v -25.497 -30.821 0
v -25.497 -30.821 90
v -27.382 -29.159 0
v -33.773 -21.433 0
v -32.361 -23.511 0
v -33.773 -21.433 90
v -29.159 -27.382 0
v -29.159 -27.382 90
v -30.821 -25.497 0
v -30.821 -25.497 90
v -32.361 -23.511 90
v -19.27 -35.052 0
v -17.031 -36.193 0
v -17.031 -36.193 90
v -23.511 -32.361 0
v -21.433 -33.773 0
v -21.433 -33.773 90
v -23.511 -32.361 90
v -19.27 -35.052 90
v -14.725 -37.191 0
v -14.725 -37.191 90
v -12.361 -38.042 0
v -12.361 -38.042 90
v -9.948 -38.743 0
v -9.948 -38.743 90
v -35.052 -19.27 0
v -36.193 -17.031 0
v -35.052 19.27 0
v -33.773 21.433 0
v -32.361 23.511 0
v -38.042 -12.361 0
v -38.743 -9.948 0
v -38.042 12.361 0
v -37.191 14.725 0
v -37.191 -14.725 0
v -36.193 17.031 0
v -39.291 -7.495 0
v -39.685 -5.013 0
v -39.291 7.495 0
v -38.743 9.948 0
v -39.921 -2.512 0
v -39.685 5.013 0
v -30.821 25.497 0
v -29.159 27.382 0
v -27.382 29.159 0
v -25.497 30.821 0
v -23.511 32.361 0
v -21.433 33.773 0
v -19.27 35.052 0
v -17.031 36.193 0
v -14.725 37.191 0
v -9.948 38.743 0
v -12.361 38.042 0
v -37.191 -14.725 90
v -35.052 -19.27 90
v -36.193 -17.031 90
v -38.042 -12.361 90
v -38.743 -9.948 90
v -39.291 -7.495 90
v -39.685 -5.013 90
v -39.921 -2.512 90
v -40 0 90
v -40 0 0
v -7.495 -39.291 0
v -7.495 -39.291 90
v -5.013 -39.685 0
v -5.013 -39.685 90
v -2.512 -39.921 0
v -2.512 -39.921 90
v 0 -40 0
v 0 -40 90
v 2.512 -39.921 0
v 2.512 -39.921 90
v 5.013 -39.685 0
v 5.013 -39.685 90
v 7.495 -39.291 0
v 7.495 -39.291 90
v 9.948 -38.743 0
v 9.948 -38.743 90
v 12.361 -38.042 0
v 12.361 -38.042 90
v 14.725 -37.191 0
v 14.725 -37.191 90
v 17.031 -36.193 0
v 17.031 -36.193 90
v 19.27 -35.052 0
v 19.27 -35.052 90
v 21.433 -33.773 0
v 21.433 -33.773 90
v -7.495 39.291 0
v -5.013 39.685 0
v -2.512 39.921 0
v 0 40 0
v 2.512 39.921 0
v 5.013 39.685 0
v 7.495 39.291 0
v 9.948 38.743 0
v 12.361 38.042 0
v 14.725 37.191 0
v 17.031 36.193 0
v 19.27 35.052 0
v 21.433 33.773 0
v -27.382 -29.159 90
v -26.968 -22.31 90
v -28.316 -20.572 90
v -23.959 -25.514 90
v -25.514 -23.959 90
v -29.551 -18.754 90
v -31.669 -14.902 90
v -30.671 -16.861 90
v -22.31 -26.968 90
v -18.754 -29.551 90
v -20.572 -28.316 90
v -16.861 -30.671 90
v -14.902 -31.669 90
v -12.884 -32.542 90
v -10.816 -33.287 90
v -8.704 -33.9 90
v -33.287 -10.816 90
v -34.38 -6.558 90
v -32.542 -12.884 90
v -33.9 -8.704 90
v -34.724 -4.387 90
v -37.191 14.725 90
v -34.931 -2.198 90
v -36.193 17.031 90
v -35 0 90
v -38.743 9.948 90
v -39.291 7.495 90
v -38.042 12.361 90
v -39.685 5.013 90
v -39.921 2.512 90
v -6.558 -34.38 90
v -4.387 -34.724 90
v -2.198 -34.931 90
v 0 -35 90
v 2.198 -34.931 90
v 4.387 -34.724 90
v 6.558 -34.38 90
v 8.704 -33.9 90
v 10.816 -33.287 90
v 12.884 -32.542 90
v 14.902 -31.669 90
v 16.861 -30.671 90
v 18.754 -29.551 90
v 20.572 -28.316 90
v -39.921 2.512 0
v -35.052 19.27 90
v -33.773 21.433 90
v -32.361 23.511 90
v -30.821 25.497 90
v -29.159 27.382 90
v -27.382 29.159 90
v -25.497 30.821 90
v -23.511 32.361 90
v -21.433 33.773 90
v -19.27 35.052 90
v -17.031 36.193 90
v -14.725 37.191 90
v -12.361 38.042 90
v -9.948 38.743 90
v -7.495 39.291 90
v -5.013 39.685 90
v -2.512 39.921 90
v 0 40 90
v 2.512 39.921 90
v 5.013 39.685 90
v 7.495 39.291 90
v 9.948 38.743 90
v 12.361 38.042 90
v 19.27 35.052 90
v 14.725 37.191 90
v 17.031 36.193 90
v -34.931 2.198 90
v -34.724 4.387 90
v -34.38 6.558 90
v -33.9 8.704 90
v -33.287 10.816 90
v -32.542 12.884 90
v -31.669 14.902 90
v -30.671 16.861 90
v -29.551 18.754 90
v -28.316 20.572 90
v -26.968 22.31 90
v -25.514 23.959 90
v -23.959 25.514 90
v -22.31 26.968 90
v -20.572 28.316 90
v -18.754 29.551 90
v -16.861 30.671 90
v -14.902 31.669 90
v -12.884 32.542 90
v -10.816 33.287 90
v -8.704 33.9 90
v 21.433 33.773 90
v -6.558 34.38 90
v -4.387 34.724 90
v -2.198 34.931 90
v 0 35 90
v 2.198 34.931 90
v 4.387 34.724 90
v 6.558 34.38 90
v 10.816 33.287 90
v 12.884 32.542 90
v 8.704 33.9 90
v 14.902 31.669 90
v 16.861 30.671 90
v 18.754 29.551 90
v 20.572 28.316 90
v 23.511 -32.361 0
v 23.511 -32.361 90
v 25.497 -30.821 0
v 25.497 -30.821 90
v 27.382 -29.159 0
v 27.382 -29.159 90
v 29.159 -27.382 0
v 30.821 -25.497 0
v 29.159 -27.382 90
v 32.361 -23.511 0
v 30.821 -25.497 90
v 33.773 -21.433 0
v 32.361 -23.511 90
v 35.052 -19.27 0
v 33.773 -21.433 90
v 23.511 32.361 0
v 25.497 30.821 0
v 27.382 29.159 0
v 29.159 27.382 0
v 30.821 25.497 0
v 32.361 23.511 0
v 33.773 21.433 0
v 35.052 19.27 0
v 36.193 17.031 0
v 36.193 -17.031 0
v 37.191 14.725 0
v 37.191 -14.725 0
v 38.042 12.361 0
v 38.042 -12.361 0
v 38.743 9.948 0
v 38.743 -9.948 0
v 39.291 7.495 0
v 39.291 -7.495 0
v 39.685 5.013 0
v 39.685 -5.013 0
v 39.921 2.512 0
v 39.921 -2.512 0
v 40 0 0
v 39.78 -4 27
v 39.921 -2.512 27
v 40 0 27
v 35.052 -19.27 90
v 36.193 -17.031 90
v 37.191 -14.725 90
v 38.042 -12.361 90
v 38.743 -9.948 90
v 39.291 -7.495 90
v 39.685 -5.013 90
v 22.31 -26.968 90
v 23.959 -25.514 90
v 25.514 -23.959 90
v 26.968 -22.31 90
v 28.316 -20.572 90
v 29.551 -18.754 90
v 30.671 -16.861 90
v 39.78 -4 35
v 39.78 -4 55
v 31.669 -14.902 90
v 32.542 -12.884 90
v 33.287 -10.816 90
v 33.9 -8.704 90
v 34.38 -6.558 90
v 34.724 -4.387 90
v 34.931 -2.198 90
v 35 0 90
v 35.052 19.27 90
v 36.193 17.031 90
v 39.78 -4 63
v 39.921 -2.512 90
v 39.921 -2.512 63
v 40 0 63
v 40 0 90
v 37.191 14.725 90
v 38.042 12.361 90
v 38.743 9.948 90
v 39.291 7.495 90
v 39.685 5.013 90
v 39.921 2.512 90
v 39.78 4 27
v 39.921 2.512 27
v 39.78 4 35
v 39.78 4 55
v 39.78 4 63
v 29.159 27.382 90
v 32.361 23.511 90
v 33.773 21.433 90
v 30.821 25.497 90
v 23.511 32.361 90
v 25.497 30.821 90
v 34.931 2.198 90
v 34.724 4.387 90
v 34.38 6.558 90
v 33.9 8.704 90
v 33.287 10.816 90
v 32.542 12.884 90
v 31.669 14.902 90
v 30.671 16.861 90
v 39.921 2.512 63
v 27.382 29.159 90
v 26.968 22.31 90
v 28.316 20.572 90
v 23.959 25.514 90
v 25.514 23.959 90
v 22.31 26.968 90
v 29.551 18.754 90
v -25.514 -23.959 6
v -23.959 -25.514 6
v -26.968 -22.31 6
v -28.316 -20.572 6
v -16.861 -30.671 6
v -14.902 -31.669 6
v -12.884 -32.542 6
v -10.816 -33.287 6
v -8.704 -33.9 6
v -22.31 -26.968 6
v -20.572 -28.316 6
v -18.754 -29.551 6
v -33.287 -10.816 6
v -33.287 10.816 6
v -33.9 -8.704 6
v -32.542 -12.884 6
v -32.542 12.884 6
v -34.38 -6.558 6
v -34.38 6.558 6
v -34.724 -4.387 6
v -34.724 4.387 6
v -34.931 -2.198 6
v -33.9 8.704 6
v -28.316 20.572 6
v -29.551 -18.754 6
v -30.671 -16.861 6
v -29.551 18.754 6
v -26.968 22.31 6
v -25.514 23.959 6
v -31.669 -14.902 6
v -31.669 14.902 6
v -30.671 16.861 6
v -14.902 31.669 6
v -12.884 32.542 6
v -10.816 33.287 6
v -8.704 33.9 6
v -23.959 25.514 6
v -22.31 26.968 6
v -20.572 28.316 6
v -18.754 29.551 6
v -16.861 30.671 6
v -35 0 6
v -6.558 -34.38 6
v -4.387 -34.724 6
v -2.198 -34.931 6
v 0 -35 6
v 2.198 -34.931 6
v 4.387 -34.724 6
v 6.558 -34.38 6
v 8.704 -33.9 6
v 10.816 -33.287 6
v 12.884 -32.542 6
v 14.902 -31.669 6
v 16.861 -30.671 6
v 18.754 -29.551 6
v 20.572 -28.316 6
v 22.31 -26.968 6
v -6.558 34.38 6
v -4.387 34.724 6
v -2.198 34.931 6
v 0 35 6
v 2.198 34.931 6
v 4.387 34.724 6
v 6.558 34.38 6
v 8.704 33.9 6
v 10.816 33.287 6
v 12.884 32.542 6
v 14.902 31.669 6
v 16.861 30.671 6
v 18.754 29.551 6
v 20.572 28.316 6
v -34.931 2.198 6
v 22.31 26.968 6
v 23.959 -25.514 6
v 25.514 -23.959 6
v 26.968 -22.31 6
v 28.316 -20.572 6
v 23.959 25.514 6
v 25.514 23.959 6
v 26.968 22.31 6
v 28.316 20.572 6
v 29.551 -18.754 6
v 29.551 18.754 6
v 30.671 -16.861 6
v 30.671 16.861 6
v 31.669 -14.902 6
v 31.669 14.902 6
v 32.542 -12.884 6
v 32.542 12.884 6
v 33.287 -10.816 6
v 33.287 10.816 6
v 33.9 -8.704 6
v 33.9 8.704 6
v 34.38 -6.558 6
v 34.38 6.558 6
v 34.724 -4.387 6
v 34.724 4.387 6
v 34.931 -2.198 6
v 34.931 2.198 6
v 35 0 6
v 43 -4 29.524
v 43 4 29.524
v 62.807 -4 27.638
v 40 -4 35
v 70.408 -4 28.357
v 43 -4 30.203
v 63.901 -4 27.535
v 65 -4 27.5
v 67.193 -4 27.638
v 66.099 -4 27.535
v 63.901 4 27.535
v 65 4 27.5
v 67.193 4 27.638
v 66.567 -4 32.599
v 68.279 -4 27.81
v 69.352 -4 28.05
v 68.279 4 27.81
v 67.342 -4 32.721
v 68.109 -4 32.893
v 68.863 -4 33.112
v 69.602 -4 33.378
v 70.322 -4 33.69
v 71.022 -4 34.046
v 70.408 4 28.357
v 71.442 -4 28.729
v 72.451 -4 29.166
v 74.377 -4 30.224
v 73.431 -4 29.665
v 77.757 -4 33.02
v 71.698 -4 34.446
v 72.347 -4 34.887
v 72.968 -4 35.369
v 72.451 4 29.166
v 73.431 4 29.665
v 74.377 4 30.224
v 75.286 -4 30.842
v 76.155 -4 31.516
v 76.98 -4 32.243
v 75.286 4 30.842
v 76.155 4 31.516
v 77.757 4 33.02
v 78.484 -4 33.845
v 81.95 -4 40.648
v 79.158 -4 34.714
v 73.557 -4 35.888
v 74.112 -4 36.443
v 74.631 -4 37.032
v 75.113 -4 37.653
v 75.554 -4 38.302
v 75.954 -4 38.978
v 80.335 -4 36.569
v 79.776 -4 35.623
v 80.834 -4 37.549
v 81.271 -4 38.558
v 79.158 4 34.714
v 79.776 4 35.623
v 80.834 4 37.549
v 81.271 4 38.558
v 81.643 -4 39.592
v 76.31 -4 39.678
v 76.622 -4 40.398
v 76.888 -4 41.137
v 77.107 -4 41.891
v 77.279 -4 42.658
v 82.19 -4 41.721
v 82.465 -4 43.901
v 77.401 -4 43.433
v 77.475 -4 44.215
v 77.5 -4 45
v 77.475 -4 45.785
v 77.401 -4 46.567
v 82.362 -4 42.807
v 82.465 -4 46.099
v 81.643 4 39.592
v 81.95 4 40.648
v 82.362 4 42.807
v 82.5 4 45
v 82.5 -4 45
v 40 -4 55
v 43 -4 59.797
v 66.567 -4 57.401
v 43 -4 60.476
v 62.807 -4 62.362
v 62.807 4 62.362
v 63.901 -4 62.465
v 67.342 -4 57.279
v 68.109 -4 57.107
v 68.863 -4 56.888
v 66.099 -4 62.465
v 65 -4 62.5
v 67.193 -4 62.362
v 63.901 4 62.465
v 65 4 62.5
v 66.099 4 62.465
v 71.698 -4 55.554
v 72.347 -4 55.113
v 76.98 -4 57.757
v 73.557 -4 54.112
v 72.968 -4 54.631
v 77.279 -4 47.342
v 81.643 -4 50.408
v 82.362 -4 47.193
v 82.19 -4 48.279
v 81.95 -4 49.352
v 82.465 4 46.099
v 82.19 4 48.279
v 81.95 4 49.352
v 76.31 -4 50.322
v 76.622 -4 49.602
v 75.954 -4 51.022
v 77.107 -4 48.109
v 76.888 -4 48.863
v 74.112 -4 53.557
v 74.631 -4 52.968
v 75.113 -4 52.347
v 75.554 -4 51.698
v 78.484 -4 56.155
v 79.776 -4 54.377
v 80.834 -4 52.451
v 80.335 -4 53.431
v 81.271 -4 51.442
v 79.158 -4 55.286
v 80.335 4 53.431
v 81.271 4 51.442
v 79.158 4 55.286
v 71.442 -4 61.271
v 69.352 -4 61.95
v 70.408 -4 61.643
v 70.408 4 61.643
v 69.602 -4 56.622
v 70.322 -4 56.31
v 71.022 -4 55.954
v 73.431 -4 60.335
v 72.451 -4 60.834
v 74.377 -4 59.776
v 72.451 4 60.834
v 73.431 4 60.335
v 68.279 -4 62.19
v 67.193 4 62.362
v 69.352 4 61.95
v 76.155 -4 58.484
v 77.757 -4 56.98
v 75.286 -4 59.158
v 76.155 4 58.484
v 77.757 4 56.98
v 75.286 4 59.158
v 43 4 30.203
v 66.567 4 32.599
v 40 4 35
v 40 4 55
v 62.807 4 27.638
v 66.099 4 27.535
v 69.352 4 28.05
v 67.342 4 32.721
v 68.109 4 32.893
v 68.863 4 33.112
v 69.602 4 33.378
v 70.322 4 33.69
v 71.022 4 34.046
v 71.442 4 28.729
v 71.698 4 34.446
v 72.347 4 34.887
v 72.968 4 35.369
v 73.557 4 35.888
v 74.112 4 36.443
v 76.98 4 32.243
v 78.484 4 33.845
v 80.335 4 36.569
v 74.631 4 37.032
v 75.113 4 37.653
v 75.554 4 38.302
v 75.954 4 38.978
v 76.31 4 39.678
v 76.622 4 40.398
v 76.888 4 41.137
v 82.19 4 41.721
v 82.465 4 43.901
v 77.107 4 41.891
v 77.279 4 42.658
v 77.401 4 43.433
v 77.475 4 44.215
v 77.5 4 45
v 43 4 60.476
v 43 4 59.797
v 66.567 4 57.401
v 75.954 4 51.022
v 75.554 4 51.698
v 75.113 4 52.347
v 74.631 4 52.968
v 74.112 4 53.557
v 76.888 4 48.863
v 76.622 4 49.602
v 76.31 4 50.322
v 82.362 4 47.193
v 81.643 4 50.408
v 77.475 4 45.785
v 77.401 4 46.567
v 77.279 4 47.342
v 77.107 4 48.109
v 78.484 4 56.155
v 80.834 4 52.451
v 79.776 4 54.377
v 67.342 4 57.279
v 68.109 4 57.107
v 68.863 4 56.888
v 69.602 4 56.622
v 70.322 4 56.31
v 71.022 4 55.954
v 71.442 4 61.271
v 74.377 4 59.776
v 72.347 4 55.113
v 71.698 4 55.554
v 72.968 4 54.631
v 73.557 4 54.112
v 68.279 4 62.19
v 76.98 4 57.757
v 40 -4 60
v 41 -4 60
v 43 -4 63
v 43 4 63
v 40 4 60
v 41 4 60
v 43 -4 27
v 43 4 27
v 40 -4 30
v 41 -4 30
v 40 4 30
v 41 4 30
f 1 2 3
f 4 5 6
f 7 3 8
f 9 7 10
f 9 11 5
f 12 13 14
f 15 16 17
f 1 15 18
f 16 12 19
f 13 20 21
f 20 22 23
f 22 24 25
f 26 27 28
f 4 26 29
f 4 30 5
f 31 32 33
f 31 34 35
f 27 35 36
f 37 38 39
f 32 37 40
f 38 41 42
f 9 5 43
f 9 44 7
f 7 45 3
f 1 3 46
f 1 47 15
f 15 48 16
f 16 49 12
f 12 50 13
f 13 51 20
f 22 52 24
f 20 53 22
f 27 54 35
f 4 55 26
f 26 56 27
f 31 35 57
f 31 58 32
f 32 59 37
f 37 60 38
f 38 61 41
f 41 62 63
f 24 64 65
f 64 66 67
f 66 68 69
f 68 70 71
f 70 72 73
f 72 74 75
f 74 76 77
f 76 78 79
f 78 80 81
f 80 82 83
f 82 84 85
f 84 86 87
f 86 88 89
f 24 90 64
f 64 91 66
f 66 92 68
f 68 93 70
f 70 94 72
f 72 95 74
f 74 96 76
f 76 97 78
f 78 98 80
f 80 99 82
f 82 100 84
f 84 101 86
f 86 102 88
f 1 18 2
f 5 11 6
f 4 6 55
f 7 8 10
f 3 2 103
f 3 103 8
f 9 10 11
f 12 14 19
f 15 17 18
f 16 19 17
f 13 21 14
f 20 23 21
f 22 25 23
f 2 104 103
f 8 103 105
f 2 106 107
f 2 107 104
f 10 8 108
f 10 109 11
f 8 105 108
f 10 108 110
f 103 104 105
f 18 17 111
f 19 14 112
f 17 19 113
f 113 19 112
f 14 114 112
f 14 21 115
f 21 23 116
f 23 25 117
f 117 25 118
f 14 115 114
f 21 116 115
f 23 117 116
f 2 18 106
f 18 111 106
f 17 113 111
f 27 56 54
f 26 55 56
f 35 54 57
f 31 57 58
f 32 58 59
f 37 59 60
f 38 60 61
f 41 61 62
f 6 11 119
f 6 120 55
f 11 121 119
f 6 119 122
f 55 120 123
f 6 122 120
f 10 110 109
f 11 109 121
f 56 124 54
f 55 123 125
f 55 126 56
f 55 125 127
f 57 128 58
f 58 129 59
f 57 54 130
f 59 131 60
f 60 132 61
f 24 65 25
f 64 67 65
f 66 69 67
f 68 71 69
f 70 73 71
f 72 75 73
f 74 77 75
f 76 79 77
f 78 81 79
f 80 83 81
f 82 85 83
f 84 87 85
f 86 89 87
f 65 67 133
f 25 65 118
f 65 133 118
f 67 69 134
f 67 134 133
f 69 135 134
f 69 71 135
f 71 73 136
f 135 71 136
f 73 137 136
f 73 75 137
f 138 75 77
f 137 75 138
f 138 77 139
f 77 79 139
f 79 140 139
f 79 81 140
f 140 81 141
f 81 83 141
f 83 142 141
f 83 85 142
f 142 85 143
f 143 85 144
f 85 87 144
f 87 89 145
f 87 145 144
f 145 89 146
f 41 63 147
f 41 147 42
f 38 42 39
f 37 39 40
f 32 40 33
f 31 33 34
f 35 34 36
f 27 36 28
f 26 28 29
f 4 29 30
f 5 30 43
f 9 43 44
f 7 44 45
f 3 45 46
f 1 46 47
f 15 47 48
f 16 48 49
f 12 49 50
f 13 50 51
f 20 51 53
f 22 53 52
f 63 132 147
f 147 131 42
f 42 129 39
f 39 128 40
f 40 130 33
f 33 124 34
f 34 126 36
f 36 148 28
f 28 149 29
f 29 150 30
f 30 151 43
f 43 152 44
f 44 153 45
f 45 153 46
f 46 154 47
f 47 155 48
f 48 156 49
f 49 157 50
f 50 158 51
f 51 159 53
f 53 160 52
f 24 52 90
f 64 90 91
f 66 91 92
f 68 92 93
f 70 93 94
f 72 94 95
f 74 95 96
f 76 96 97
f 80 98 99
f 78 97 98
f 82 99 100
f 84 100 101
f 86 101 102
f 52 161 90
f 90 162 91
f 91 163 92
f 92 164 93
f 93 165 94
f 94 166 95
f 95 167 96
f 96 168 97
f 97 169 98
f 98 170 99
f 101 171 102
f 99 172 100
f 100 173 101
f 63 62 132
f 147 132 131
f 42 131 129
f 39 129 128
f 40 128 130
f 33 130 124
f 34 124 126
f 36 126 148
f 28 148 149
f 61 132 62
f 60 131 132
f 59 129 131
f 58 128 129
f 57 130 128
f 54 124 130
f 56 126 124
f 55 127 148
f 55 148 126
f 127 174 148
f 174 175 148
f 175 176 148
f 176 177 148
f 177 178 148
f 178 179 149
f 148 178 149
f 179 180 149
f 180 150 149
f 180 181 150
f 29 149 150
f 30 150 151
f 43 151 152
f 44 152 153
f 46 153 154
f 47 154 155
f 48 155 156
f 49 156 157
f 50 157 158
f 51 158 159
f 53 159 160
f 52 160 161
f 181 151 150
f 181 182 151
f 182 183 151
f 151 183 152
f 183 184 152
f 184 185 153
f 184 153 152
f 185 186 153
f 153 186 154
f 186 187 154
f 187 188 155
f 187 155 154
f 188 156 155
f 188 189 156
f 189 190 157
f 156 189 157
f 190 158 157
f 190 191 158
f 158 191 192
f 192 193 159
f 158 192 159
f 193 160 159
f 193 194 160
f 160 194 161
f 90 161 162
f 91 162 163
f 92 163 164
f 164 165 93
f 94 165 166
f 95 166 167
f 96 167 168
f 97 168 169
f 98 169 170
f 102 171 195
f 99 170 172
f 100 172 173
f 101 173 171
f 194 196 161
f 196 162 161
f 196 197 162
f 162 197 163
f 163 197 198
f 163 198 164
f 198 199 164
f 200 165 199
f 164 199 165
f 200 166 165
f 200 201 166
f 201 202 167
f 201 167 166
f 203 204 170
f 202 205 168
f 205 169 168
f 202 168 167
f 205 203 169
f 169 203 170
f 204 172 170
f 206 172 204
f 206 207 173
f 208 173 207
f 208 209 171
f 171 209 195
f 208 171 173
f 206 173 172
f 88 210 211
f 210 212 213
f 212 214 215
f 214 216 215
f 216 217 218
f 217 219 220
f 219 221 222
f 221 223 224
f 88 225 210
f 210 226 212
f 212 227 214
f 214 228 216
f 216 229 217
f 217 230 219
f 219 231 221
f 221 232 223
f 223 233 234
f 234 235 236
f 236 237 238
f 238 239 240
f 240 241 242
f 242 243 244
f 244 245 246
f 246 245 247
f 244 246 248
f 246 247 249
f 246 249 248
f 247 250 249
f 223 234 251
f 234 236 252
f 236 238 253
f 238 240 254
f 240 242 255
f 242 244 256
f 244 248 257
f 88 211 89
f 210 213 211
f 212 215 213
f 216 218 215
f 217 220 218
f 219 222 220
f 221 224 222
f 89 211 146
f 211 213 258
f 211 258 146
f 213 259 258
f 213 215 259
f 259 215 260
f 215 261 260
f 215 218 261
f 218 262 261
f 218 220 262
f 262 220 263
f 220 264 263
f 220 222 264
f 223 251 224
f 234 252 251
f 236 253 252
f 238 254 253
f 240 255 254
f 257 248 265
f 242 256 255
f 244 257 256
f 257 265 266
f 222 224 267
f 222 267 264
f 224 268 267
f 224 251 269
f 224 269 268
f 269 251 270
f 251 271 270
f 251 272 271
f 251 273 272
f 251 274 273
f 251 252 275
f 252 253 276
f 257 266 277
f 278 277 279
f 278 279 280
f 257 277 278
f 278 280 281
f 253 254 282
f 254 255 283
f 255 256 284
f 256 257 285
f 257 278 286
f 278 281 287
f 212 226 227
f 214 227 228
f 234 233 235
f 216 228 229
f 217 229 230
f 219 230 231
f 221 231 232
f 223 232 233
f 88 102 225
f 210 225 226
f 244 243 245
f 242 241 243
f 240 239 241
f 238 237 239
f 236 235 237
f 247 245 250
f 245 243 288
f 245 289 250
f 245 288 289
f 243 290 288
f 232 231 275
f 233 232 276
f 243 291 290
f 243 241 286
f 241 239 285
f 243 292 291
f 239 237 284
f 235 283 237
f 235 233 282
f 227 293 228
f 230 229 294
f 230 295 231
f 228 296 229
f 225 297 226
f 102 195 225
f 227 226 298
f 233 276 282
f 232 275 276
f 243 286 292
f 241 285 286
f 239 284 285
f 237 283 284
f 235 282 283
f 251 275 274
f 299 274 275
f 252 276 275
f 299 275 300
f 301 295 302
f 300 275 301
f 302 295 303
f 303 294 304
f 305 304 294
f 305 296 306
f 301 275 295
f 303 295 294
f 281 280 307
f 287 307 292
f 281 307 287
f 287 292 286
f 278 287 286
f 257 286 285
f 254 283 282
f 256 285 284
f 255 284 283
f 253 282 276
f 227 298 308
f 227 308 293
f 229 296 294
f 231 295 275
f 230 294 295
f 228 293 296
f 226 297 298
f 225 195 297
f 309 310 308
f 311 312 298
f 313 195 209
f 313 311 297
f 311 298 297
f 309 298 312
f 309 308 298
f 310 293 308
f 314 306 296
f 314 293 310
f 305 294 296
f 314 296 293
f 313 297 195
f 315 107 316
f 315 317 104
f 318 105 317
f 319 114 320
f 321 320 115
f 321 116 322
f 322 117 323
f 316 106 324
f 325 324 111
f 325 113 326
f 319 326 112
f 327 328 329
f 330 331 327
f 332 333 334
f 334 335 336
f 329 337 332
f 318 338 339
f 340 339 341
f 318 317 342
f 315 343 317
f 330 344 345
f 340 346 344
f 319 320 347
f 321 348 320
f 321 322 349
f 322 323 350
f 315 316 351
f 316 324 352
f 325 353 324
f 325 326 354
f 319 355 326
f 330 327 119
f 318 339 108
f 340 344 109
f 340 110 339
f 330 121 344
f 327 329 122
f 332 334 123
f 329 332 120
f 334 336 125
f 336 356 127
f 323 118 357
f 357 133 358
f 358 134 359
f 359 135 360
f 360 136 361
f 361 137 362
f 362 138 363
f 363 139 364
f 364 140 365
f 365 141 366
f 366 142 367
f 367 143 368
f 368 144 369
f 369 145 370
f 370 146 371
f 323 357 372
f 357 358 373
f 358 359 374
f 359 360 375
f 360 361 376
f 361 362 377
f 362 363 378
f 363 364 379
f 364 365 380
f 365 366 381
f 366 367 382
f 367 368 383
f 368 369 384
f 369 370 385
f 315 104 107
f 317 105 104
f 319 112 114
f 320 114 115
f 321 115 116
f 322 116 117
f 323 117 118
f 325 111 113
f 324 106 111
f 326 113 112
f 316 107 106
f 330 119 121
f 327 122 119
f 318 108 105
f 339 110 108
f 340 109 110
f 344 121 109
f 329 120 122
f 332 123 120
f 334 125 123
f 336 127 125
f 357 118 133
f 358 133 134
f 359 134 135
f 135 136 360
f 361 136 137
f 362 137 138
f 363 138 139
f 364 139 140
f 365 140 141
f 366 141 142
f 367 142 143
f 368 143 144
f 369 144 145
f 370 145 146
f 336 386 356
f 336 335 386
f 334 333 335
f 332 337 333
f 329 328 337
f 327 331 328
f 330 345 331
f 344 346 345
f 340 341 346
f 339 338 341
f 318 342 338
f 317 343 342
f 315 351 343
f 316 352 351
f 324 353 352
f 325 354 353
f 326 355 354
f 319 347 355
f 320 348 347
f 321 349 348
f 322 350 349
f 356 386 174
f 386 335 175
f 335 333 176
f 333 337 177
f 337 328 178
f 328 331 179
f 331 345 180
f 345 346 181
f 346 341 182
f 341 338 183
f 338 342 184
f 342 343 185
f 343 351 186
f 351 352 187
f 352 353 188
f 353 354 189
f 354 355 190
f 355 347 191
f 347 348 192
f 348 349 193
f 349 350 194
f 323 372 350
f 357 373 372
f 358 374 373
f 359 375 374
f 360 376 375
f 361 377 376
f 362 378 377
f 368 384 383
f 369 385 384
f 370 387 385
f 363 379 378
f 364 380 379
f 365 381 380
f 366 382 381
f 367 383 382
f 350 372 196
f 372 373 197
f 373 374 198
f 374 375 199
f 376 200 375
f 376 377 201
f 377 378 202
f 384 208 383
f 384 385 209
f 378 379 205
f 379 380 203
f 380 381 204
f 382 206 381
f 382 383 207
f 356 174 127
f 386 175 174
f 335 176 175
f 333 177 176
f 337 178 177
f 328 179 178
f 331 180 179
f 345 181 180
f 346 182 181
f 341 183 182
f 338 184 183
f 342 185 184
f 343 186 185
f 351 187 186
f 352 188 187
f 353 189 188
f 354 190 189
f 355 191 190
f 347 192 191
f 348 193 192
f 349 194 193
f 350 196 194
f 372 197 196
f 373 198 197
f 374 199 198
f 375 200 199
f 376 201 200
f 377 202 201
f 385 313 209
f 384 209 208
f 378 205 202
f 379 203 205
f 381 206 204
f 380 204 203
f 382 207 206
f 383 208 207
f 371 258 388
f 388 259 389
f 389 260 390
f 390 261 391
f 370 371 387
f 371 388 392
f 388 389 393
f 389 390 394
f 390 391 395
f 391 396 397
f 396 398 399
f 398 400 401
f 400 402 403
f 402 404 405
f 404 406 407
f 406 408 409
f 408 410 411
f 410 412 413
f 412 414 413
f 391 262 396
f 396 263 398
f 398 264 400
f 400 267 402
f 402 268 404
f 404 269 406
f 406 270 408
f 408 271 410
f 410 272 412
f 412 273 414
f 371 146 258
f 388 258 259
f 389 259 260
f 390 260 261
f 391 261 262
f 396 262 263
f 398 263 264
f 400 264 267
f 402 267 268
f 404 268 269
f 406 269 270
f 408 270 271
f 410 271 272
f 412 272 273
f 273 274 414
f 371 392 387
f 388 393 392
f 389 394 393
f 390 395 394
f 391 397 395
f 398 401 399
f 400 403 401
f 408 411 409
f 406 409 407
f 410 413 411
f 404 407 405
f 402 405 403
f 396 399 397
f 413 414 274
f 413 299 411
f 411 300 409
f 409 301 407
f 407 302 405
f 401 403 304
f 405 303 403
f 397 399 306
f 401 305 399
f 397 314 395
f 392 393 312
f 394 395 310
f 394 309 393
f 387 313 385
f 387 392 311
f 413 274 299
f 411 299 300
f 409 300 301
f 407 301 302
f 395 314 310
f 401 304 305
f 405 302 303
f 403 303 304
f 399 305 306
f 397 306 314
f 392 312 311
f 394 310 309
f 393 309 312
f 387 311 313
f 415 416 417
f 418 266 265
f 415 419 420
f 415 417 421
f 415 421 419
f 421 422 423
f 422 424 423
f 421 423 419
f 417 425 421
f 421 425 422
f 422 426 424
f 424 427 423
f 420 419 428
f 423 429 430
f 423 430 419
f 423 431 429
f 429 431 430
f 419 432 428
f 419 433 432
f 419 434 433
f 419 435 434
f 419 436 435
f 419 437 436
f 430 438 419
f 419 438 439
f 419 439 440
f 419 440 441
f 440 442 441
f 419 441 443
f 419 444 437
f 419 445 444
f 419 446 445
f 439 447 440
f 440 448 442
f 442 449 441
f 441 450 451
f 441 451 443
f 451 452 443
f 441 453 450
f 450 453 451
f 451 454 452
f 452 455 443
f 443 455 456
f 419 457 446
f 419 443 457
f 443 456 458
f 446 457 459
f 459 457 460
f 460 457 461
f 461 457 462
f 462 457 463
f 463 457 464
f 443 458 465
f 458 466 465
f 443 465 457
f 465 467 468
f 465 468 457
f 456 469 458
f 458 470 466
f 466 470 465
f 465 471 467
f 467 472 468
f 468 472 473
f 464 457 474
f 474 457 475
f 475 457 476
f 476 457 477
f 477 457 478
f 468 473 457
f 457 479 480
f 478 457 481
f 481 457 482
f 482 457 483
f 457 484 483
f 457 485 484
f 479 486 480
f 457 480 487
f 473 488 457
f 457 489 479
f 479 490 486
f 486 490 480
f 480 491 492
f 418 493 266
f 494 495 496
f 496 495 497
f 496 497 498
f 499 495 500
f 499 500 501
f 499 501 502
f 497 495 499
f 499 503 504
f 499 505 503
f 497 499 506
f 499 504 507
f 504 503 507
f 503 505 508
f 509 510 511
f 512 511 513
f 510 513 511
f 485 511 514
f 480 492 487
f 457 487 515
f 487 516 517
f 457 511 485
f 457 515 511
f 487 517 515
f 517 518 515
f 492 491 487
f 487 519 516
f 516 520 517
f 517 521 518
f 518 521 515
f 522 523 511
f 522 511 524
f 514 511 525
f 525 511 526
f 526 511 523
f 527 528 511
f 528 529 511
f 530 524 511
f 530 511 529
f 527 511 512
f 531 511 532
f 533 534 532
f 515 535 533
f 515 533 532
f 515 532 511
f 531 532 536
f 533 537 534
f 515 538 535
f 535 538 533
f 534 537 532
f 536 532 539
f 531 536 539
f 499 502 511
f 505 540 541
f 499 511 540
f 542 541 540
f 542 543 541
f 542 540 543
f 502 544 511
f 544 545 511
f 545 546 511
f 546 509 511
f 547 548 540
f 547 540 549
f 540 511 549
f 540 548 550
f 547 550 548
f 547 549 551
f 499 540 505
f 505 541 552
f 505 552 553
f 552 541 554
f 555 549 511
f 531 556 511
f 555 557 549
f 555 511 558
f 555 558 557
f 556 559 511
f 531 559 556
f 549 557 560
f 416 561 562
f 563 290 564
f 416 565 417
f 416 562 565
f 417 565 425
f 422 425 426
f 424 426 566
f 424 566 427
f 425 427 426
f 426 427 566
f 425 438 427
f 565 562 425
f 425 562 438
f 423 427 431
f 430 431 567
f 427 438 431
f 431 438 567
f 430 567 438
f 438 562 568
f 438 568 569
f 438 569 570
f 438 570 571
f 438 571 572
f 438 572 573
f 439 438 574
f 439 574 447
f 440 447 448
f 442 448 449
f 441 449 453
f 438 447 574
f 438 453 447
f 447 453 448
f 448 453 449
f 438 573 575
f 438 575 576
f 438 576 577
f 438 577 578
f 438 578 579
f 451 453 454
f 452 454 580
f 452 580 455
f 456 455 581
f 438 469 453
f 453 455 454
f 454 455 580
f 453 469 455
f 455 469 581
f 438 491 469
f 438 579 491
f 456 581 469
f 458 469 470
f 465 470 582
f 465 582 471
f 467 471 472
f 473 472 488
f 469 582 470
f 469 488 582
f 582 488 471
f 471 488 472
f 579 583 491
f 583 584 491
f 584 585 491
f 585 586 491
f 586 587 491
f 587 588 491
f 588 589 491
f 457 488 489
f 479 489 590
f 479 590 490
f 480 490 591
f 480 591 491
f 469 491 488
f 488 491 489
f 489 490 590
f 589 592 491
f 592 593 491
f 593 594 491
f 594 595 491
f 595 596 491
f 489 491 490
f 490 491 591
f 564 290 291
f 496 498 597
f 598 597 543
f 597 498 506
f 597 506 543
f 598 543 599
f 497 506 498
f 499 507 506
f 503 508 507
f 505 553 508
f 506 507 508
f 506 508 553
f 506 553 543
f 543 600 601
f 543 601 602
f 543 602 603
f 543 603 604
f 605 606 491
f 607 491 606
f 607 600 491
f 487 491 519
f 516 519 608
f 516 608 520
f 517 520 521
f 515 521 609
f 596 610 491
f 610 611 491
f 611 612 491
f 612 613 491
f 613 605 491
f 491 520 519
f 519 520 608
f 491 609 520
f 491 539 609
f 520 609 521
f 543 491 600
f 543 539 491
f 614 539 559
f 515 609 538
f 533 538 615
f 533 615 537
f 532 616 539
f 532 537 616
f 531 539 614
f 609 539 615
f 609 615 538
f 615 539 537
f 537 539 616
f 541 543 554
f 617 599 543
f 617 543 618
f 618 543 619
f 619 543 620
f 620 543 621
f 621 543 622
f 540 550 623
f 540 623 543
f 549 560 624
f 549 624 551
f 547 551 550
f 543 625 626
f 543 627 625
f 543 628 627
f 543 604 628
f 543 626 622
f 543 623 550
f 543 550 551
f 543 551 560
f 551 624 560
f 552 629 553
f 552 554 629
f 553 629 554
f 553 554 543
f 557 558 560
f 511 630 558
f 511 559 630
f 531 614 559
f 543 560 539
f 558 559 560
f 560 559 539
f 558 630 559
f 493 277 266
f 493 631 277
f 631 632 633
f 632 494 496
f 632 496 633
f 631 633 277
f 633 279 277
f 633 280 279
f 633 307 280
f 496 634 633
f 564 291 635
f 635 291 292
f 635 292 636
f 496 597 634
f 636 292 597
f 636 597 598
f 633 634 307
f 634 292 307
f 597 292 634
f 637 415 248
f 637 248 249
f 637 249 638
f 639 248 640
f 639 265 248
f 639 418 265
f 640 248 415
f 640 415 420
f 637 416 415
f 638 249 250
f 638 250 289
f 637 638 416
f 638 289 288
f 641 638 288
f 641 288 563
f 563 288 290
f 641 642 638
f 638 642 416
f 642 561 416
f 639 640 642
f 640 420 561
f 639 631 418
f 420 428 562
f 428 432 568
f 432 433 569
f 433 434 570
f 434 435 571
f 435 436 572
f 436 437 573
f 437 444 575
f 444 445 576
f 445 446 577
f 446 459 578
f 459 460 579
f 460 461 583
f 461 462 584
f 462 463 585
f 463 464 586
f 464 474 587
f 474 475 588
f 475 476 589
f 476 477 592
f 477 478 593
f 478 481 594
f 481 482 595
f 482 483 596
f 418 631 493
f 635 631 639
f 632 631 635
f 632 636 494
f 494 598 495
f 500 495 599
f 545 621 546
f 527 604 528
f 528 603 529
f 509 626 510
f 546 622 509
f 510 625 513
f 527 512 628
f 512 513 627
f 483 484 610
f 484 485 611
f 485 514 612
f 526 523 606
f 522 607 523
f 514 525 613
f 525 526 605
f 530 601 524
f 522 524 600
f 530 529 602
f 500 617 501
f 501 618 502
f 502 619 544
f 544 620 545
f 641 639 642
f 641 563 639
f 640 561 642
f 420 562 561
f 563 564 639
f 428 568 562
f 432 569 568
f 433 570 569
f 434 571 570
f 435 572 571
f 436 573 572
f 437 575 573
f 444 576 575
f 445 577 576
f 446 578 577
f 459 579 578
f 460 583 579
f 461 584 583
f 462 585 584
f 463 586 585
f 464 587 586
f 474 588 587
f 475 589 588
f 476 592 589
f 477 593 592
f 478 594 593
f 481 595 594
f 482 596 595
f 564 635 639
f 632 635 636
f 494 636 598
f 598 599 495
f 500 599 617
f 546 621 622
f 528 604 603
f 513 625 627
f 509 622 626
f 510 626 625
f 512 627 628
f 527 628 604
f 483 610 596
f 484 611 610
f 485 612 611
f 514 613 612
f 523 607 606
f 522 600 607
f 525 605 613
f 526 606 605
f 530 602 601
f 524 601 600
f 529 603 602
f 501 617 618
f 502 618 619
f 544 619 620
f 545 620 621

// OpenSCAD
$fn = 100;

// マグカップ本体
difference() {
    // 外側の円筒
    cylinder(h = 90, r = 40, center = false);
    // 内側をくり抜く
    translate([0, 0, 6])
        cylinder(h = 90, r = 35, center = false);
}

// 取手（+X方向）
translate([40, 0, 45]) {
    difference() {
        // 取手の外側形状（D字型）
        union() {
            // 本体との接続部分（上側）
            translate([-5, -4, 10])
                cube([8, 8, 8]);
            // 本体との接続部分（下側）
            translate([-5, -4, -18])
                cube([8, 8, 8]);
            // D字の主要部分
            hull() {
                // 本体側の垂直部分
                translate([-2, -4, -15])
                    cube([4, 8, 30]);
                // 外側の半円部分
                translate([25, 0, 0])
                    rotate([90, 0, 0])
                        cylinder(h = 8, r = 17.5, center = true);
            }
        }
        // 取手の内側をくり抜く（高さ30mm × 幅25mm）
        hull() {
            translate([0, -5, -15])
                cube([1, 10, 30]);
            translate([25, 0, 0])
                rotate([90, 0, 0])
                    cylinder(h = 10, r = 12.5, center = true);
        }
    }
}
